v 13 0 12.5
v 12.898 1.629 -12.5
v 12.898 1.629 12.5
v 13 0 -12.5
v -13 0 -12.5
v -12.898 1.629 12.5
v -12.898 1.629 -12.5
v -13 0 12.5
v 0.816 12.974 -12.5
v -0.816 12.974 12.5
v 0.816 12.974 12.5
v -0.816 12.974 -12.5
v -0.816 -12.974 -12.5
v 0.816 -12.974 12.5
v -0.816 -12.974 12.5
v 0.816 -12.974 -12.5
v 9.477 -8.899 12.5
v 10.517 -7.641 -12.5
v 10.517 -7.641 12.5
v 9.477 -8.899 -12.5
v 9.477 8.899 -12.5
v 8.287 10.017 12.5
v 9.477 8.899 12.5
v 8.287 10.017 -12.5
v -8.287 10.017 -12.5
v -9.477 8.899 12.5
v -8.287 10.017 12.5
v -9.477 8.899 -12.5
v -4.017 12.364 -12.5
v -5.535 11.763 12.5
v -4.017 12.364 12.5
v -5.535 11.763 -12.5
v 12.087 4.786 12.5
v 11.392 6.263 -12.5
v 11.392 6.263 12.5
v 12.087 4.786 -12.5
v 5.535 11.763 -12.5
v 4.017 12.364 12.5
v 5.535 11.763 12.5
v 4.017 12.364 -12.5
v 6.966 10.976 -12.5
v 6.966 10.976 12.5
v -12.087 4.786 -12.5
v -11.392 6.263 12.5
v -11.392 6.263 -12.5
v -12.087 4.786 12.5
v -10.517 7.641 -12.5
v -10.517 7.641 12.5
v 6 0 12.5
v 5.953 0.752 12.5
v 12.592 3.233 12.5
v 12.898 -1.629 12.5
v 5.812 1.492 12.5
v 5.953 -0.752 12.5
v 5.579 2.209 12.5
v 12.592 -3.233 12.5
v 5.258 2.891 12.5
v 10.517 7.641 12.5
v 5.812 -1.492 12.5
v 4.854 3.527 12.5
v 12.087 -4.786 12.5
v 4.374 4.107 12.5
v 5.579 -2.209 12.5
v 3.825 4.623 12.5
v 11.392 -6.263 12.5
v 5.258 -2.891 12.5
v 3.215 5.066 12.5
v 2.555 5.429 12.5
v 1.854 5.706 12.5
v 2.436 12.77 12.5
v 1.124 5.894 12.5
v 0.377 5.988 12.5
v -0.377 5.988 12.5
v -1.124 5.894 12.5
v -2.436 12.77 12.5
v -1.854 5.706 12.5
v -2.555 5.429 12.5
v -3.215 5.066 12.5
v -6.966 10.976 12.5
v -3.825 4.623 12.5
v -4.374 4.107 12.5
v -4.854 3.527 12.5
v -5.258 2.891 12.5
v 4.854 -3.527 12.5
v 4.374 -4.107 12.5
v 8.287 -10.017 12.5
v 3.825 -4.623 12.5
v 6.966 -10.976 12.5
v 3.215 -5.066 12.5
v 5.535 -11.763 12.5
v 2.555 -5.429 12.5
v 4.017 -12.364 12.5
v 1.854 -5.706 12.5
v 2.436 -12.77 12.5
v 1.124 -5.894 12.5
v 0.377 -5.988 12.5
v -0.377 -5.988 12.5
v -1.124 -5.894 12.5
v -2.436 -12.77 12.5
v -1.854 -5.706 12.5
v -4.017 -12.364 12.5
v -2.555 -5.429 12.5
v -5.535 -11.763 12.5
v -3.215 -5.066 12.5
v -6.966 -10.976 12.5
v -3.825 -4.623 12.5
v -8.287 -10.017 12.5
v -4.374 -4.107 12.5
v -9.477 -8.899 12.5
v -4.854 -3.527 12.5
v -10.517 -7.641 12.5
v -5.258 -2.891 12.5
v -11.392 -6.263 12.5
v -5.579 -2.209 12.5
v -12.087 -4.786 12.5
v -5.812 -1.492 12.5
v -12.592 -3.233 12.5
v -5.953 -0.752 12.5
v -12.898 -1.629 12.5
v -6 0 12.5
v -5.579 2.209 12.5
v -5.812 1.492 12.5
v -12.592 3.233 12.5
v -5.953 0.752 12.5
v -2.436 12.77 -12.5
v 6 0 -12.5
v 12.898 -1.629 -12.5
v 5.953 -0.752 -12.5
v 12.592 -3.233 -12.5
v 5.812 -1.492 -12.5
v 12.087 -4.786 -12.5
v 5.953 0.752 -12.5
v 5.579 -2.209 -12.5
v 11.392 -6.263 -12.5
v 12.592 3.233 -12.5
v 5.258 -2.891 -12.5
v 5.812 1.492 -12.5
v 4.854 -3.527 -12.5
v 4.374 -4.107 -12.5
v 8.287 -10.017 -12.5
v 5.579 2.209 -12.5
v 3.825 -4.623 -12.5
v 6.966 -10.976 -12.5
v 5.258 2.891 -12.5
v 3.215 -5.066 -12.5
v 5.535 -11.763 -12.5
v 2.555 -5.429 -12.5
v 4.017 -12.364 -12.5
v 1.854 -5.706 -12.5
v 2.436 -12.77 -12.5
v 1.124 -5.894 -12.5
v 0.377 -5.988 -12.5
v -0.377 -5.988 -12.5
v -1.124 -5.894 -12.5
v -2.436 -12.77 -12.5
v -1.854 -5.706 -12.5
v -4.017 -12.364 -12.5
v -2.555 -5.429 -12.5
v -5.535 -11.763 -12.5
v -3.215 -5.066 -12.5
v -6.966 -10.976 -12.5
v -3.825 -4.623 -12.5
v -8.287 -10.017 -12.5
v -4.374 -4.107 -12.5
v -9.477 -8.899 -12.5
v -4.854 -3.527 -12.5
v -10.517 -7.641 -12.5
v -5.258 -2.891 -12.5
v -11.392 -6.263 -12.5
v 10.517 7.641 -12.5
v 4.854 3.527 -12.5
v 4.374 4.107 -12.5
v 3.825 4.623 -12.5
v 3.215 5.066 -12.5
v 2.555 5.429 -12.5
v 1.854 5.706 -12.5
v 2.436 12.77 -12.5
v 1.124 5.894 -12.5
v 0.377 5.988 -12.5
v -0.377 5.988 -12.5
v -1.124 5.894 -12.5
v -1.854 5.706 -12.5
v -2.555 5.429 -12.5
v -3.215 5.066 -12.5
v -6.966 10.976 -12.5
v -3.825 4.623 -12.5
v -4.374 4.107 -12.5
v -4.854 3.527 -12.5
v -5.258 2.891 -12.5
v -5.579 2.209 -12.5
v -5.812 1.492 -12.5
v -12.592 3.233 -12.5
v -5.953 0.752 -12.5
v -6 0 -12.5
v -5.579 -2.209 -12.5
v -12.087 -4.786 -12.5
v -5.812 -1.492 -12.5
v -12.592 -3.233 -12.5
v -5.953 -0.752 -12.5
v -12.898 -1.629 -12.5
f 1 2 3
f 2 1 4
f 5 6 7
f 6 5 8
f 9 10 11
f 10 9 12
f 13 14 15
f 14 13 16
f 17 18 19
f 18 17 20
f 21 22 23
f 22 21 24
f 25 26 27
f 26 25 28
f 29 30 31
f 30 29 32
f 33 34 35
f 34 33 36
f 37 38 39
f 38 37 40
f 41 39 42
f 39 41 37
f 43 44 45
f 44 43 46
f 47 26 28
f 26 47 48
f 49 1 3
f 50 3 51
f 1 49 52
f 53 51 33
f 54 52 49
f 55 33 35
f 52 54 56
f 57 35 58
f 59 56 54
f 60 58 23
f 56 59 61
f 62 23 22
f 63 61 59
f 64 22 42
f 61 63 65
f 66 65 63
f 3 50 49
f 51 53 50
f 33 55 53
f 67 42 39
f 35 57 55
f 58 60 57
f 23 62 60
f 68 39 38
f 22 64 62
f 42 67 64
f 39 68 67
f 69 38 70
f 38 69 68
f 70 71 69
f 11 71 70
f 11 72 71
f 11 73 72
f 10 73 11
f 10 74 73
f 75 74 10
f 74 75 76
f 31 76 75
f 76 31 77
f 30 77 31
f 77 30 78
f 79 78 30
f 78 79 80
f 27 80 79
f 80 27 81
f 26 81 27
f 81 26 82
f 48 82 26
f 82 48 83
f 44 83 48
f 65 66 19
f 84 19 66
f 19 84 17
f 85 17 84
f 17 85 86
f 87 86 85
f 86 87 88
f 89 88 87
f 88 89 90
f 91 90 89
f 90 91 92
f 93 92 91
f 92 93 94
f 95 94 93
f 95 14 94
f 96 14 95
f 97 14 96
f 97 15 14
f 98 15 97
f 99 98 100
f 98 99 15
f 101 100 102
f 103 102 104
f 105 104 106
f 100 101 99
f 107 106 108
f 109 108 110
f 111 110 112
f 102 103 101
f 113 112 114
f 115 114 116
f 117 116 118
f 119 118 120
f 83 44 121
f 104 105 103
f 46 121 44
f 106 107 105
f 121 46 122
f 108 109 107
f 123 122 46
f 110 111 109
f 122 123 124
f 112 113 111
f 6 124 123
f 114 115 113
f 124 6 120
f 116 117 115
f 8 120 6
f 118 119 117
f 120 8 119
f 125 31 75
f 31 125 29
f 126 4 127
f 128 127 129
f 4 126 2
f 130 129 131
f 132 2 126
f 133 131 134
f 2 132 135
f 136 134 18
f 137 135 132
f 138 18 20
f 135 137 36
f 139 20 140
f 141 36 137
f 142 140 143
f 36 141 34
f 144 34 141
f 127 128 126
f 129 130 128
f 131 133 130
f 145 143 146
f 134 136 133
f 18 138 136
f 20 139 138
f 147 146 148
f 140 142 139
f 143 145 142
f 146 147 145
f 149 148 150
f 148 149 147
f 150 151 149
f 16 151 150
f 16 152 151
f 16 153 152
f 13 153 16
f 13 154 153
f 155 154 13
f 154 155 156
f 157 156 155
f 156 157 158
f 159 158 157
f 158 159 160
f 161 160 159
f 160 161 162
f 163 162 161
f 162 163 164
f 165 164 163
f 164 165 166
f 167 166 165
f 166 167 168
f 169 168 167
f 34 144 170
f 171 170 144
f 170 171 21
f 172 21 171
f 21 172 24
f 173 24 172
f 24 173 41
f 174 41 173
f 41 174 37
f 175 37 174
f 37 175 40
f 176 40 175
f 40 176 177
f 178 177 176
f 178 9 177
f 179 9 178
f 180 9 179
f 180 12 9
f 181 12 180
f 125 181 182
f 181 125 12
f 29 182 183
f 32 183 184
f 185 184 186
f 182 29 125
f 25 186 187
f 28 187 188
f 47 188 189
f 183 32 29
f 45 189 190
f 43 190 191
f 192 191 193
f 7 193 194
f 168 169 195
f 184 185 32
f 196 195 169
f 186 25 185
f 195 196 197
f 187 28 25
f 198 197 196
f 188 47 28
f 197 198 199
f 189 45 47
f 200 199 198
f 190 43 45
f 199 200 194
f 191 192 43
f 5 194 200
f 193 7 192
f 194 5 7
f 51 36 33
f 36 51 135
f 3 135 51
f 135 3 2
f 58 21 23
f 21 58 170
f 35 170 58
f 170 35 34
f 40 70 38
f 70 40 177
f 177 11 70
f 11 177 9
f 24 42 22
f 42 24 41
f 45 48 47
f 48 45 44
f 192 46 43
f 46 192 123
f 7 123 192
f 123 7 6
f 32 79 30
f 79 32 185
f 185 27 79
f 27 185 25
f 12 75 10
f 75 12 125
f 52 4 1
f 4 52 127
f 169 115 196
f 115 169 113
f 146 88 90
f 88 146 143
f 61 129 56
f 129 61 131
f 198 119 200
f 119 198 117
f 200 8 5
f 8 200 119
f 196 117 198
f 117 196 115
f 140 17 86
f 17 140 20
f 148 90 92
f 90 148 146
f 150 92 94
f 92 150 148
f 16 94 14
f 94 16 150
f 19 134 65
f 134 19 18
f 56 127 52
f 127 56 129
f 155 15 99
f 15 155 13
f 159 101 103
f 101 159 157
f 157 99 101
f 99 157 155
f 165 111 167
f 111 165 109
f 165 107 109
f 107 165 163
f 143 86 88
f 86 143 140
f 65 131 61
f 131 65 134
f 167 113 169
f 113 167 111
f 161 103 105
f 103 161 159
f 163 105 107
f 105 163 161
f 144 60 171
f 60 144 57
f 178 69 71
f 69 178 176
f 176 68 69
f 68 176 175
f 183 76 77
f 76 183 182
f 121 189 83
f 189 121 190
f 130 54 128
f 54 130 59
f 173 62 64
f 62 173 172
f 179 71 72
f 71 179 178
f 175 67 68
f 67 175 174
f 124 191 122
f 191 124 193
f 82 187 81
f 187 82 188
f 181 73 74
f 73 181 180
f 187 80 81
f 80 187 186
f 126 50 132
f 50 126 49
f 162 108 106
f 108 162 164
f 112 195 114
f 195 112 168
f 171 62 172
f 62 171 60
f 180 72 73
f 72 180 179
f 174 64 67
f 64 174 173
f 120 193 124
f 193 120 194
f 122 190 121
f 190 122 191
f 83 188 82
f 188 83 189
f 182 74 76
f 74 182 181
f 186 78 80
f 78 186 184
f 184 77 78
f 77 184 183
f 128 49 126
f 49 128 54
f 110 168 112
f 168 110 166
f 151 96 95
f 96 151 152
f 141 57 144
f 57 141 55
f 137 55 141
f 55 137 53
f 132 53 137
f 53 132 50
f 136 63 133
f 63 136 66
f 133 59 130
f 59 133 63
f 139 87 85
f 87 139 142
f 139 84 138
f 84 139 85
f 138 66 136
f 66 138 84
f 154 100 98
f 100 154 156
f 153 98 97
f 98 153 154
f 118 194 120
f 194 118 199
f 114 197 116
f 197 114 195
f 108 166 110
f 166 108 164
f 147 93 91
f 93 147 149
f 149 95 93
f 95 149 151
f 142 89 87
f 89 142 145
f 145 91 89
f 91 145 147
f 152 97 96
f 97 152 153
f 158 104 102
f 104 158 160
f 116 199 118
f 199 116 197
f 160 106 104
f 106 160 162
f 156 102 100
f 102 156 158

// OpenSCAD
$fn = 50;


difference() {
	union() {
		translate(v = [0, 0, -12.5000000000]) {
			cylinder(h = 25, r = 13.0000000000);
		}
	}
	union() {
		translate(v = [0, 0, -100.0000000000]) {
			cylinder(h = 200, r = 6);
		}
	}
}
